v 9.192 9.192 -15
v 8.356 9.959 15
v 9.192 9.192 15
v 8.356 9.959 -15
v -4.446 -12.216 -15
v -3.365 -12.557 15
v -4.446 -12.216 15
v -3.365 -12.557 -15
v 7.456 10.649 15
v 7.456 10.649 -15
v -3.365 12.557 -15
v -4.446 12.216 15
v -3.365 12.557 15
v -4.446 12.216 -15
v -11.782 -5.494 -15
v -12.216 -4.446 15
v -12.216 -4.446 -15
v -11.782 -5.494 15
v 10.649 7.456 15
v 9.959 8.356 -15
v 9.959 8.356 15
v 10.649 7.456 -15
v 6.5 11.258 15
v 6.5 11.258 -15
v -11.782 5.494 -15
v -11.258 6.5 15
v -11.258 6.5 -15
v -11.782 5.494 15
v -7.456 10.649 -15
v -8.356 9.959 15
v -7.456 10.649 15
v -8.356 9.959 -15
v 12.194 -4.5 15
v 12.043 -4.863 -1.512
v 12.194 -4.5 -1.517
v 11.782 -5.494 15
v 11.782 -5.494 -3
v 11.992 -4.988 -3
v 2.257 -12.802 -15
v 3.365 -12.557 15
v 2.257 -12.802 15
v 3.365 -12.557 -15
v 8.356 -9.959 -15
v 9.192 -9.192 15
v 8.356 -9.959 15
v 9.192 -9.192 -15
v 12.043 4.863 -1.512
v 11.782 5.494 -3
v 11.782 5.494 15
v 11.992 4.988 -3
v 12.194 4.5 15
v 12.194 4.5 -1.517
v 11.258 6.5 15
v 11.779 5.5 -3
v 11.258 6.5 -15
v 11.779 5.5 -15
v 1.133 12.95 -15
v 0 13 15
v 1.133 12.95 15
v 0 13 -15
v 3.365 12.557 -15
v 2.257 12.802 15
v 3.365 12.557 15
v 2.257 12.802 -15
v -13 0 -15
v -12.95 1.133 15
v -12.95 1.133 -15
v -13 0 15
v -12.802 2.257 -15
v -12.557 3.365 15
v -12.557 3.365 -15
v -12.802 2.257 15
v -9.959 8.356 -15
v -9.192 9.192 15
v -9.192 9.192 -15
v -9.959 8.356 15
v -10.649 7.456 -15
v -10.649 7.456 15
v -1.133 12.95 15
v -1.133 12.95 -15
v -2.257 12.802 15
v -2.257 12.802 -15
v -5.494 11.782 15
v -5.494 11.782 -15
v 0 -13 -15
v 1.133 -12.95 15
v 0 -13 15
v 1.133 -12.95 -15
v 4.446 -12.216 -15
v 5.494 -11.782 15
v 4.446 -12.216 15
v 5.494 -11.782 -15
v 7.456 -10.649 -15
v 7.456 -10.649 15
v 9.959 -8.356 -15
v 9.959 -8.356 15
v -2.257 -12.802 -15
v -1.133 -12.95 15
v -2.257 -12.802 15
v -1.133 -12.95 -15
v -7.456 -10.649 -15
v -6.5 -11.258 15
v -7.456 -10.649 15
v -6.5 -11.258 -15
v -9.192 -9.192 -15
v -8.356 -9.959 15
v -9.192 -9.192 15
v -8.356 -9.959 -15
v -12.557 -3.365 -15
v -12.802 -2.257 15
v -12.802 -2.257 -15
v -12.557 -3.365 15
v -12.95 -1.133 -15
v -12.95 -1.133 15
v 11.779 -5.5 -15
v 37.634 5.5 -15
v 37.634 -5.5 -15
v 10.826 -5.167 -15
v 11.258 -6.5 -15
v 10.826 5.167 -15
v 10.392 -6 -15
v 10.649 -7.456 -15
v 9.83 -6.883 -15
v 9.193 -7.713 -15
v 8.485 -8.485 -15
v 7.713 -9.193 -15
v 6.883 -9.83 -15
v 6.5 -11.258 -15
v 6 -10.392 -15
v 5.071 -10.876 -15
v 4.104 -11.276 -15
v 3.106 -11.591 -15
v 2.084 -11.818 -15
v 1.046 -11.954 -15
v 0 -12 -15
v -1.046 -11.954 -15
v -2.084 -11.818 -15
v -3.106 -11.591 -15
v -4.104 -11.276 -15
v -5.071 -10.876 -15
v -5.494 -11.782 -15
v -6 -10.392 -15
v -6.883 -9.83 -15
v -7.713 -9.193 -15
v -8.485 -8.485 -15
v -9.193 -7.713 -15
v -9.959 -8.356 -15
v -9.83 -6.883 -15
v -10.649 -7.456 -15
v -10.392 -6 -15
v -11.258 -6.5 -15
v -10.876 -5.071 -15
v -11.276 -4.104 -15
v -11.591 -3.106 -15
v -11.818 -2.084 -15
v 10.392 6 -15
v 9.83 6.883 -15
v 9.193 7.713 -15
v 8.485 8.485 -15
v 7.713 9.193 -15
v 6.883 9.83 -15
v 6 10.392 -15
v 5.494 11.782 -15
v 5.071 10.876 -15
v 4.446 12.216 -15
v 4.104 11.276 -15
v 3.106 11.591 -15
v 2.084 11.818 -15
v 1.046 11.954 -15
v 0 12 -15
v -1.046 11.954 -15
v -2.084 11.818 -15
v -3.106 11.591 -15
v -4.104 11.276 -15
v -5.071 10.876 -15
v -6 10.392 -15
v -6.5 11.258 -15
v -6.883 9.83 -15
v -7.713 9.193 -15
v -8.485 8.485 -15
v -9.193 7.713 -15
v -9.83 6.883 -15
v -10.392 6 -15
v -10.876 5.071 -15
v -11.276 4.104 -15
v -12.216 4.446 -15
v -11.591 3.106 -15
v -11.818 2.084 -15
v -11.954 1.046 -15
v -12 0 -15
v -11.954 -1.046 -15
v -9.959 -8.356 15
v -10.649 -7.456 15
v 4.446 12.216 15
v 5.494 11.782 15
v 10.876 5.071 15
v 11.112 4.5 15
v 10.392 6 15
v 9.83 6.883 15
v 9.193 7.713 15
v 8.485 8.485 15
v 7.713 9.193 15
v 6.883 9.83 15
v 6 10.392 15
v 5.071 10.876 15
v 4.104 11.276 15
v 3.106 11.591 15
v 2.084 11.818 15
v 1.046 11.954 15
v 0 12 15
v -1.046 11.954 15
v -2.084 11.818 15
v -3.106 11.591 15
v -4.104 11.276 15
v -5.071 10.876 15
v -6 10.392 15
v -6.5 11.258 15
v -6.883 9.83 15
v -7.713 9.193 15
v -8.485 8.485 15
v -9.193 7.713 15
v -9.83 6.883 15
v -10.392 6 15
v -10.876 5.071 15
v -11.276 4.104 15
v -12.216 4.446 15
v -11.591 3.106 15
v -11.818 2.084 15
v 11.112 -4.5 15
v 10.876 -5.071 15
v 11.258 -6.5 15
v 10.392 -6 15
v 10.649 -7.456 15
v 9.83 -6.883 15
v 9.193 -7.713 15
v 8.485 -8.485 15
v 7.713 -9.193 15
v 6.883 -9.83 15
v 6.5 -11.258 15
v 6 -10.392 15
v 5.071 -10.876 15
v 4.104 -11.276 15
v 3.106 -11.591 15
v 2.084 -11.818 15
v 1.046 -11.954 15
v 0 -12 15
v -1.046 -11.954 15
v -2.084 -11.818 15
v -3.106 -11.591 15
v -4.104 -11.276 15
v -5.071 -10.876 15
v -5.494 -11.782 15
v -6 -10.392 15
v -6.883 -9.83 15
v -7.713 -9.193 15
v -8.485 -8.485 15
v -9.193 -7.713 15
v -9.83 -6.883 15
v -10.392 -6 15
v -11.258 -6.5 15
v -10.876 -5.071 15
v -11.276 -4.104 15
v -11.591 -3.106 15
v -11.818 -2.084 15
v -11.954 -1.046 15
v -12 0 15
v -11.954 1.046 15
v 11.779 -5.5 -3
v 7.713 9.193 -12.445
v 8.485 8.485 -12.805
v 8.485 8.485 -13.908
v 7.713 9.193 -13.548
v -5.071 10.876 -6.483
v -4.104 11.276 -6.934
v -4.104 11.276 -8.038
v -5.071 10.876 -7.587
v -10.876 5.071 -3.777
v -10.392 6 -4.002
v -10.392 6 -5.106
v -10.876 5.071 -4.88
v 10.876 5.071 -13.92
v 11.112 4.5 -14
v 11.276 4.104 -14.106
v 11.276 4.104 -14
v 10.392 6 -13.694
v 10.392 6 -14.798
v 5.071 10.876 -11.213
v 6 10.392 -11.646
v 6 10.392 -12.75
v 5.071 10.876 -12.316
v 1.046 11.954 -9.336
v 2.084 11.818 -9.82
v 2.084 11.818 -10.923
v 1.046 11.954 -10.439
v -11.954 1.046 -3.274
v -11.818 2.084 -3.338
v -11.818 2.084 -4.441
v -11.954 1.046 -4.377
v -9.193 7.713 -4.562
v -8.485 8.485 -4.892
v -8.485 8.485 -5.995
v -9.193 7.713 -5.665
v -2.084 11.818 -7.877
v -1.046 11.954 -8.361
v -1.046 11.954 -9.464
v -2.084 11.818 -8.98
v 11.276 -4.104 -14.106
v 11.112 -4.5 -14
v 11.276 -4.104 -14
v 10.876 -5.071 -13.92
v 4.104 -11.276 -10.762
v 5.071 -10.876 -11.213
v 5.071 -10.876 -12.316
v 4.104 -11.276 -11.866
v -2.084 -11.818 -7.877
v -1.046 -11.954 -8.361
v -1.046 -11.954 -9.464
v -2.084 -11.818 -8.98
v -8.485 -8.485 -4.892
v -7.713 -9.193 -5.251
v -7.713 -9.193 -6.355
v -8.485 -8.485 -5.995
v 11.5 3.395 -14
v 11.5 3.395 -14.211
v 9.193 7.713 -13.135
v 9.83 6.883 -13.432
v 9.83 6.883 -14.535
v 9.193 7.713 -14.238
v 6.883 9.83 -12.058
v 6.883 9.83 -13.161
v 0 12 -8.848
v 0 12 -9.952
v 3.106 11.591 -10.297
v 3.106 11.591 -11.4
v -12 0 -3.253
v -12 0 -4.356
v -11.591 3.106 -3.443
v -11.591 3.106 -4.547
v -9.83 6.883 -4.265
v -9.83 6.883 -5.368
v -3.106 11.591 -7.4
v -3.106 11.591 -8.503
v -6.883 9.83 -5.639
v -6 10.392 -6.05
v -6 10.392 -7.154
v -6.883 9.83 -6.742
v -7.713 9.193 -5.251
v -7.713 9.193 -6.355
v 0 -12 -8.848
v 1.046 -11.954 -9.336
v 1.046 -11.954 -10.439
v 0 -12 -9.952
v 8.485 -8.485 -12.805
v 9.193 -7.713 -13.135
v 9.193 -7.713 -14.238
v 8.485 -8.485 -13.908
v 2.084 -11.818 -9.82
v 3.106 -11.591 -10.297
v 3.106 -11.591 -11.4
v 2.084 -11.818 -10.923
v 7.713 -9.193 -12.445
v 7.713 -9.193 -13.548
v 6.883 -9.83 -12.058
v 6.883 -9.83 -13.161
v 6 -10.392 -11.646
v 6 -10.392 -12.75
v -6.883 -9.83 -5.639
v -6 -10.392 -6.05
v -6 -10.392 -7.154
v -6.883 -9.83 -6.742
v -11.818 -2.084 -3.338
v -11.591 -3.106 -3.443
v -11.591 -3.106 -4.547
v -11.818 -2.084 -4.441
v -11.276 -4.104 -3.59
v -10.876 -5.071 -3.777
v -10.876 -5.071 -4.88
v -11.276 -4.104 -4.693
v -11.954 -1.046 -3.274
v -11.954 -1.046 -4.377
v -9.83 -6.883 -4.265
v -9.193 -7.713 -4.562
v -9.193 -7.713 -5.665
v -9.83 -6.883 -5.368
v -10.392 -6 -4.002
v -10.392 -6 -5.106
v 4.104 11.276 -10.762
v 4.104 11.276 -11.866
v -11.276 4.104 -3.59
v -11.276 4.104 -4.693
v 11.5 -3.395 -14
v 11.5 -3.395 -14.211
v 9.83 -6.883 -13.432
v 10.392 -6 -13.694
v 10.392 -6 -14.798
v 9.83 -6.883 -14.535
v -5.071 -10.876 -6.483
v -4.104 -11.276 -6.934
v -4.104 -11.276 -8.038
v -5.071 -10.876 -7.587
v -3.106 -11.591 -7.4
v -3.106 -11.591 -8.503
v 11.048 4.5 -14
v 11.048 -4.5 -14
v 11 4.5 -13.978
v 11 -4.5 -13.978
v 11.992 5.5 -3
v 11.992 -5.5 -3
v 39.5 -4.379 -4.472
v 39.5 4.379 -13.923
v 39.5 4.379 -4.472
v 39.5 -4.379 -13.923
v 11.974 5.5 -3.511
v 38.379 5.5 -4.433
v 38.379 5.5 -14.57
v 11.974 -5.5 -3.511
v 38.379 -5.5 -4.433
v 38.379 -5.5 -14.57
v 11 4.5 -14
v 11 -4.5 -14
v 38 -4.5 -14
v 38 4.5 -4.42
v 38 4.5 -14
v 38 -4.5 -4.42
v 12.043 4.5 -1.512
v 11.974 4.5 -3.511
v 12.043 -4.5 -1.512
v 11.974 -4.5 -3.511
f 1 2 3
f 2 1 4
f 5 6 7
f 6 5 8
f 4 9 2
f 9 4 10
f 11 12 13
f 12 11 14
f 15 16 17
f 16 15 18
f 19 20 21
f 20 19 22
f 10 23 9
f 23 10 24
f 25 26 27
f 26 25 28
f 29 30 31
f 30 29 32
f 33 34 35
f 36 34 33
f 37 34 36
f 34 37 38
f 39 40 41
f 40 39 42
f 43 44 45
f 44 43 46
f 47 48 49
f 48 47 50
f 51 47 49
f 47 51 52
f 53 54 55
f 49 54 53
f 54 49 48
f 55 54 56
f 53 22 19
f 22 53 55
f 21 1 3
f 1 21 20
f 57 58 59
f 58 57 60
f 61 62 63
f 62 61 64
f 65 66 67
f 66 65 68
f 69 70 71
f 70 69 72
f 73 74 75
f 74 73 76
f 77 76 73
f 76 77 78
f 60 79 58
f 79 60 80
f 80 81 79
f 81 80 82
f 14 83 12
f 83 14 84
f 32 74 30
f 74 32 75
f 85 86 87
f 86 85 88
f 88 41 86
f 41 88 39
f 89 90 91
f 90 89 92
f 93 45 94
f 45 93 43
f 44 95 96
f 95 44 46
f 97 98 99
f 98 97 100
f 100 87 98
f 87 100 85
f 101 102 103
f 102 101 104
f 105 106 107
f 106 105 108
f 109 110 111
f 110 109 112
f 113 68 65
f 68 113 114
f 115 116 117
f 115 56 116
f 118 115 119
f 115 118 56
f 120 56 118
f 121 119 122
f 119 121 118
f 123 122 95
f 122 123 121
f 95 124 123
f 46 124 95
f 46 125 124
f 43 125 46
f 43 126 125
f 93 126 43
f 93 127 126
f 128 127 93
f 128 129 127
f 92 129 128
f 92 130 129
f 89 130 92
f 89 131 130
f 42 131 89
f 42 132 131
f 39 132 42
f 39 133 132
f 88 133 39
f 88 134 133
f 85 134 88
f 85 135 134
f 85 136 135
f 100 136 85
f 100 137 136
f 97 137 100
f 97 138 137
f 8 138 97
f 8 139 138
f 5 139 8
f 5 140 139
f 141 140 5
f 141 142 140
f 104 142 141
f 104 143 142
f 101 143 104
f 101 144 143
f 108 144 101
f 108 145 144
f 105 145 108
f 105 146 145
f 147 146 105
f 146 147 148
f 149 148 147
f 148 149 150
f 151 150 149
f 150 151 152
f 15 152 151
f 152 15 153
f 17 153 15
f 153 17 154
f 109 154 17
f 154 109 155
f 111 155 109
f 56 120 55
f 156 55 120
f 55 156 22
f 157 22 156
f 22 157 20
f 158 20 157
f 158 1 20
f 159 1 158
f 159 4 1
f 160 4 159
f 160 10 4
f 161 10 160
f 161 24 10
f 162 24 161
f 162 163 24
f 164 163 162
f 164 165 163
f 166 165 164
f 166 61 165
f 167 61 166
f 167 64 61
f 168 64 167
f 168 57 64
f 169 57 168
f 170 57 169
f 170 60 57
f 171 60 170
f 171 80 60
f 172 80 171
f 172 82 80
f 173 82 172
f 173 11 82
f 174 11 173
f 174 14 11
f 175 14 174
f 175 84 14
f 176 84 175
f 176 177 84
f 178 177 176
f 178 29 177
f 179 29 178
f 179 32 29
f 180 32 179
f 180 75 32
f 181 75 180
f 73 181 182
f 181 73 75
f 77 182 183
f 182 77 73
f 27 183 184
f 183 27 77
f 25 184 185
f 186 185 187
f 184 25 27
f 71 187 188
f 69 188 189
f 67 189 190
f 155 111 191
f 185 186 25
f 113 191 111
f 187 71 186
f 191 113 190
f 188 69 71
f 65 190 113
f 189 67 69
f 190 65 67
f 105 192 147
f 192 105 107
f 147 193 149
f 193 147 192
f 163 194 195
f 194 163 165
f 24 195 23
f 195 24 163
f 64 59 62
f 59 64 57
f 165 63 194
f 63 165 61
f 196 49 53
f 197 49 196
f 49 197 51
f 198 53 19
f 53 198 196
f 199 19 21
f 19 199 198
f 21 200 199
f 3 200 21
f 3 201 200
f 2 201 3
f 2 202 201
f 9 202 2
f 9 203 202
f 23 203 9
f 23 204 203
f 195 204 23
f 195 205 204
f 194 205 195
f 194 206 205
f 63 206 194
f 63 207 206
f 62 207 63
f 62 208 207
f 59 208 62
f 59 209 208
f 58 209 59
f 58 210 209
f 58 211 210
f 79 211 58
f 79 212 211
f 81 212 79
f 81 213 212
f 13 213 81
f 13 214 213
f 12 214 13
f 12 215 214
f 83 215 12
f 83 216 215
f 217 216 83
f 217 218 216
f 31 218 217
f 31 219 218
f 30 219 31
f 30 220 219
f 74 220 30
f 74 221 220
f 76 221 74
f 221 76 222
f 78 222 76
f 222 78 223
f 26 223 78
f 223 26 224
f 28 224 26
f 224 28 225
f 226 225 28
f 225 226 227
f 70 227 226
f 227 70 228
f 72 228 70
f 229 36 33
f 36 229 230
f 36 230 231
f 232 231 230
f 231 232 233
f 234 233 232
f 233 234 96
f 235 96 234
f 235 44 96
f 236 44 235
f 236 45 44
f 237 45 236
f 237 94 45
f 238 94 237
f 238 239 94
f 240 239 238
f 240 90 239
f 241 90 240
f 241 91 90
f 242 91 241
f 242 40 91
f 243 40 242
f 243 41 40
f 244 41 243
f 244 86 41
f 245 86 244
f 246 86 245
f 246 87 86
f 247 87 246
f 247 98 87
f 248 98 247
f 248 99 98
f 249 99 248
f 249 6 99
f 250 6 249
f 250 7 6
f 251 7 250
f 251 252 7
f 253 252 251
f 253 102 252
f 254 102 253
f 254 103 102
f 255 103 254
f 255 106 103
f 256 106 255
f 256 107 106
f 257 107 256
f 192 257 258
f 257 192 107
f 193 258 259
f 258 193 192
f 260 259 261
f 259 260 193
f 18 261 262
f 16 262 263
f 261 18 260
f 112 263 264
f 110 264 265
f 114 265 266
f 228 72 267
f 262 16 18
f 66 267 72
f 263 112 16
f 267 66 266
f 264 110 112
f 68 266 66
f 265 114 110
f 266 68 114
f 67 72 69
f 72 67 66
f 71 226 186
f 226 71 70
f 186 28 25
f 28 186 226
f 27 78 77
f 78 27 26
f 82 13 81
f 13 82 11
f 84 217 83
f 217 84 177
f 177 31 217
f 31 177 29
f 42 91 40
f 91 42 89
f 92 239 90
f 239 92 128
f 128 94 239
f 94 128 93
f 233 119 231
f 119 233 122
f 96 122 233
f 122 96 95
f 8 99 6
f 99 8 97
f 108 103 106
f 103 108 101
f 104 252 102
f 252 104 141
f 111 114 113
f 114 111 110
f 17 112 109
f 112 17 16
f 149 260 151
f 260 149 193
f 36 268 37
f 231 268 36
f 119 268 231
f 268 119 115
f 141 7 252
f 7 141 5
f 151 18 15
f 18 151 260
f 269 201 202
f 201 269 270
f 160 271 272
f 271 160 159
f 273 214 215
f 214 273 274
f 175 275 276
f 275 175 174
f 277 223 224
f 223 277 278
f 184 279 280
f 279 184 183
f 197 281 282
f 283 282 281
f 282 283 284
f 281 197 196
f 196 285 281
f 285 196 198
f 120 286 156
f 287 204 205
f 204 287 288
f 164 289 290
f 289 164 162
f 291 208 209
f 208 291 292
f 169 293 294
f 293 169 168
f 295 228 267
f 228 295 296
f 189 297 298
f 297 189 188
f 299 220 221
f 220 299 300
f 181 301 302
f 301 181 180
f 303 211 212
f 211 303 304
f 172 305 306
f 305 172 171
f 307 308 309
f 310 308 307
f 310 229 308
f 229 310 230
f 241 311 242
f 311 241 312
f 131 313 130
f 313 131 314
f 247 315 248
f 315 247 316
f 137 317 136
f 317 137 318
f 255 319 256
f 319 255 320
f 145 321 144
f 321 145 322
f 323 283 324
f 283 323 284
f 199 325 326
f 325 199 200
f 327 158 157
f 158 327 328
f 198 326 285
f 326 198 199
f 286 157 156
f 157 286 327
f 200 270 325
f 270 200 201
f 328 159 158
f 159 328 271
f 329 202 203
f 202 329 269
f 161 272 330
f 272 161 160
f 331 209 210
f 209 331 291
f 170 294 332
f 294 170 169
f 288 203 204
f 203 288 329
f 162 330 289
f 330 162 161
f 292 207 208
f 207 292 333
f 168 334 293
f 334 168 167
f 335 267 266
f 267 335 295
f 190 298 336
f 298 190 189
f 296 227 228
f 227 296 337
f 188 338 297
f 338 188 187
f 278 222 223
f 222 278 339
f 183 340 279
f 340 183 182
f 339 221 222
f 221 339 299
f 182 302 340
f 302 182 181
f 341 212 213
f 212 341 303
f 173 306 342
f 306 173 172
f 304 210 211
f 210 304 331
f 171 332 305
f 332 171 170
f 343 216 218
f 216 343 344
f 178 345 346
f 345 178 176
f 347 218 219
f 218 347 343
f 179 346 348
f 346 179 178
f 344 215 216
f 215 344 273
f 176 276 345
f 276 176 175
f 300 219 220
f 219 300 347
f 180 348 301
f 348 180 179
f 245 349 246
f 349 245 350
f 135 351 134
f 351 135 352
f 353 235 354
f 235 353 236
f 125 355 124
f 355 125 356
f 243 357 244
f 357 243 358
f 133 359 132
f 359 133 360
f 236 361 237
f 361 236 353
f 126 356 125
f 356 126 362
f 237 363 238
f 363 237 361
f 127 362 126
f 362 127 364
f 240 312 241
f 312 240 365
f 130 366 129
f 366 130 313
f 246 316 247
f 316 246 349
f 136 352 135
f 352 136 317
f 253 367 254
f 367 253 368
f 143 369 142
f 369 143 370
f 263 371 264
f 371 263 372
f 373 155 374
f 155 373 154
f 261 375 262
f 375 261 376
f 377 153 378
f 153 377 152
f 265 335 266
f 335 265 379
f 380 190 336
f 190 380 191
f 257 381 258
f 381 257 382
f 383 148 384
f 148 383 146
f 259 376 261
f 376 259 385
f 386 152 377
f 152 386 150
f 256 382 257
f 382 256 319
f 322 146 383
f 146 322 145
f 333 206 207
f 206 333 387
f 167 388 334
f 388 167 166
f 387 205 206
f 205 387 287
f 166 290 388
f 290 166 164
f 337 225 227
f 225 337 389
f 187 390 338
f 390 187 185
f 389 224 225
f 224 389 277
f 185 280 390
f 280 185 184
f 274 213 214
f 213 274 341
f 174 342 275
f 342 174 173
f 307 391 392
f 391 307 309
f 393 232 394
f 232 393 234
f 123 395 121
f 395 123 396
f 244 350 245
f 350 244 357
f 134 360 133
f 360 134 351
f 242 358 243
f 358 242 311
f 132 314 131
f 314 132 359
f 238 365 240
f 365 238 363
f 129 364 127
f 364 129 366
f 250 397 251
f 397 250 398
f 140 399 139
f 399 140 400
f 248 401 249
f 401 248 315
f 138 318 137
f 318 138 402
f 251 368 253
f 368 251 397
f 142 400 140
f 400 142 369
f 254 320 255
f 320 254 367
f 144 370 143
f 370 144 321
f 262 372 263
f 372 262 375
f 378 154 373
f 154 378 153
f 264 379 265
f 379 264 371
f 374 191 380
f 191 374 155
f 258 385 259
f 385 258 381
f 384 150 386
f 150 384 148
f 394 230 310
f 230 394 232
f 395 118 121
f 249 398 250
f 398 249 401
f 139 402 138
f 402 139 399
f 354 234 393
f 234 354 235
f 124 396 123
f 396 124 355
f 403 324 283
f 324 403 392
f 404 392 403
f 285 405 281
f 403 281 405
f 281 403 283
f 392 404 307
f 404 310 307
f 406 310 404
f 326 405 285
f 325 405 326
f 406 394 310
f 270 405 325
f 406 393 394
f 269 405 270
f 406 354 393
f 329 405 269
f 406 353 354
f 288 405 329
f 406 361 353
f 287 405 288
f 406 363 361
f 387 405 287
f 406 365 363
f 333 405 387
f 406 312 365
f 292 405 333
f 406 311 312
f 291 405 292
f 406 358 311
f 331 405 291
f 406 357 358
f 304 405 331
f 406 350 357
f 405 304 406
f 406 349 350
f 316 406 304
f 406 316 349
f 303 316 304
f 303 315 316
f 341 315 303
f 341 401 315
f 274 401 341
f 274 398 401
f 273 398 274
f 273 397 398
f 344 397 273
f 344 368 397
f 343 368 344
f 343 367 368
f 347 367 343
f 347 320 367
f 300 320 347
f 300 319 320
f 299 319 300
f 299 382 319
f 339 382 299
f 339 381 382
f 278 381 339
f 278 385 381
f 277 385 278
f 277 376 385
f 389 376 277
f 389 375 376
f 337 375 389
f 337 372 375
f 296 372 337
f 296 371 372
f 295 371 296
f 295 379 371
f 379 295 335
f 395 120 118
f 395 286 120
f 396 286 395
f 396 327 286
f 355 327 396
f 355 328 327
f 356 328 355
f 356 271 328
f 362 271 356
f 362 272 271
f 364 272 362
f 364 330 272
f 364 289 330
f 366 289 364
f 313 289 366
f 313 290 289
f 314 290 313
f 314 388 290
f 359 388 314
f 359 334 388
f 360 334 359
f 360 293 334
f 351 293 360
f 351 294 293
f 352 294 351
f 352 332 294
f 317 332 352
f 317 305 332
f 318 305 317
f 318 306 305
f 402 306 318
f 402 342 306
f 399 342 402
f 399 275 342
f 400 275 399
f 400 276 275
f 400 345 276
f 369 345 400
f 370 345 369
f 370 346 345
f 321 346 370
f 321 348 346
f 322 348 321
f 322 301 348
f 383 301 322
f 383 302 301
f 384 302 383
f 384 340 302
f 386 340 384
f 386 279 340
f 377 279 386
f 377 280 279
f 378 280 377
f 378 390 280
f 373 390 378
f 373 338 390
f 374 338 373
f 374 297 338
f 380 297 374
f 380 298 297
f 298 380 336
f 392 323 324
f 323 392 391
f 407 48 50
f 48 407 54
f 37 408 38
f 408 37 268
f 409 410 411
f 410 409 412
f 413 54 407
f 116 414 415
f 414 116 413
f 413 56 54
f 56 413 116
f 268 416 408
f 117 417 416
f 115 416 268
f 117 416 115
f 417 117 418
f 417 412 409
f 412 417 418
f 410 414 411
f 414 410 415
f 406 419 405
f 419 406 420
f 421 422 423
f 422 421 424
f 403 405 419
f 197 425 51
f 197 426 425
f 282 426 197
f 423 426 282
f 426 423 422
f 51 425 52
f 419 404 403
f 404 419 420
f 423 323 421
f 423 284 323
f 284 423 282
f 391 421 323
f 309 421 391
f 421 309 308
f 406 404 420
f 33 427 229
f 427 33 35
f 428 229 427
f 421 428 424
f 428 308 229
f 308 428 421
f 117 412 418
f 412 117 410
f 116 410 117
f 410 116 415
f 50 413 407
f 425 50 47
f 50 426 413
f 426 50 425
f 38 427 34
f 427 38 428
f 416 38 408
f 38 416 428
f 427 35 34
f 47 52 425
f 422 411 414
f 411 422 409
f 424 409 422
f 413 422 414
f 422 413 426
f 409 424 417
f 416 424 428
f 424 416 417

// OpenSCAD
$fa=5; $fs=0.1;

difference(){

union(){

difference(){
    cylinder(h=30, r=13, center=true);
    cylinder(h=30.01, r=12, center=true);
}

intersection(){
    {translate([0, 0, -9.4])
        rotate([0, 25, 0])
        cube([28.7, 26, 1], center=true);}
     
     cylinder(h=30, r=13, center=true);
}

translate([11.5, -5.5, -15])
    cube([28, 11, 12]);
}

translate([11, -4.5, -14])
    cube([27, 9, 11.01]);

translate([13, 0, 5.5])
    cube([5, 9, 19.02], center=true);

translate([40, 0, -14.5])
    rotate([0, -30, 0])
        cube([20,20,1.5], center=true);


translate([12.5+27/2, 0, -3])
    rotate([0, 2, 0])
        cube([28, 11.01, 2], center=true);

translate([40, -6, -9.5]){
    rotate([0, 0, 45])
        cube([3, 3, 11], center=true);
    
    translate([0, 12, 0])
        rotate([0, 0, 45])
            cube([3, 3, 11], center=true);
        
}

}
